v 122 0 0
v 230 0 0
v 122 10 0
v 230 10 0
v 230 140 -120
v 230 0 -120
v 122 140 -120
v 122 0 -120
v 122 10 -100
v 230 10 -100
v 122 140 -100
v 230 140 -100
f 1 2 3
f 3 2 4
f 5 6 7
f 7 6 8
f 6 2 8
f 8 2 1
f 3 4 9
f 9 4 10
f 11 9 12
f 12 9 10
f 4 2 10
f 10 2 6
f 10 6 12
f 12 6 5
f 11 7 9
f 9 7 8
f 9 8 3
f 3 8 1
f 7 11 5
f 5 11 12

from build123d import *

# Parameters (mm, degrees)
SKETCH1_W                      = 670
SKETCH1_H                      = 120
BOSS_EXTRUDE1_DEPTH            = 530
SKETCH2_W                      = 100
SKETCH2_H                      = 200
SKETCH2_W_2                    = 650
SKETCH2_H_2                    = 250
CUT_EXTRUDE1_DEPTH             = 100
SKETCH3_R                      = 50
CUT_EXTRUDE2_DEPTH             = 260
F_12_0_12_DIAMETER_HOLE2_D     = 12
F_12_0_12_DIAMETER_HOLE2_DEPTH = 30
F_12_0_12_DIAMETER_HOLE2_TIP   = 3.605163714
SKETCH8_W                      = 650
SKETCH8_H                      = 50
BOSS_EXTRUDE2_DEPTH            = 5
SKETCH9_W                      = 10
SKETCH9_H                      = 250
CUT_EXTRUDE3_DEPTH             = 717
CUT_EXTRUDE4_DEPTH             = 5
SKETCH11_W                     = 10
SKETCH11_H                     = 100
BOSS_EXTRUDE3_DEPTH            = 78
BOSS_EXTRUDE3_2_DEPTH          = 78
BOSS_EXTRUDE3_3_DEPTH          = 78
SKETCH12_W                     = 20
SKETCH12_H                     = 30
CUT_EXTRUDE5_DEPTH             = 80
SKETCH15_W                     = 30
SKETCH15_H                     = 23.536156656
SKETCH15_H_2                   = 28.986603691
CUT_EXTRUDE7_DEPTH             = 35
SHELL1_T                       = -3
SKETCH16_W                     = 14
SKETCH16_H                     = 14
CUT_EXTRUDE8_DEPTH             = 35
SKETCH17_W                     = 5.729882812
SKETCH17_H                     = 17.428393554
SKETCH17_W_2                   = 13.369726562
SKETCH17_H_2                   = 3.342431641
BOSS_EXTRUDE4_DEPTH            = 5
CUT_EXTRUDE10_DEPTH            = 863.670273187
CUT_EXTRUDE10_DEPTH_BACK       = 863.670273187
SKETCH18_W                     = 670
SKETCH18_H                     = 250
CUT_EXTRUDE12_DEPTH            = 734.007503372
CUT_EXTRUDE12_DEPTH_BACK       = 734.007503372
SKETCH19_W                     = 440
SKETCH19_H                     = 280
SKETCH20_W                     = 210.918945895
SKETCH20_H                     = 296.400973443
CUT_EXTRUDE14_DEPTH            = 156
CUT_EXTRUDE15_DEPTH            = 376.898922584
CUT_EXTRUDE15_DEPTH_BACK       = 376.898922584
SKETCH21_W                     = 108
SKETCH21_H                     = 140


with BuildPart() as part:
    # Sketch1 → Boss-Extrude1 (new body)
    with BuildSketch(Plane(origin=(0, 0, 0), x_dir=(1, 0, 0), z_dir=(0, 1, 0))):
        with Locations((335, 60)):
            Rectangle(SKETCH1_W, SKETCH1_H)
    extrude(amount=BOSS_EXTRUDE1_DEPTH)

    # Sketch2 → Cut-Extrude1 (cut)
    with BuildSketch(Plane.XY):
        with Locations((60, 380)):
            Rectangle(SKETCH2_W, SKETCH2_H)
        with Locations((170, 380)):
            Rectangle(SKETCH2_W, SKETCH2_H)
        with Locations((280, 380)):
            Rectangle(SKETCH2_W, SKETCH2_H)
        with Locations((390, 380)):
            Rectangle(SKETCH2_W, SKETCH2_H)
        with Locations((500, 380)):
            Rectangle(SKETCH2_W, SKETCH2_H)
        with Locations((610, 380)):
            Rectangle(SKETCH2_W, SKETCH2_H)
        with Locations((335, 135)):
            Rectangle(SKETCH2_W_2, SKETCH2_H_2)
    extrude(amount=-CUT_EXTRUDE1_DEPTH, mode=Mode.SUBTRACT)

    # Sketch3 → Cut-Extrude2 (cut)
    with BuildSketch(Plane(origin=(0, 530, 0), x_dir=(1, 0, 0), z_dir=(0, 1, 0))):
        with Locations(Location((60, 60, 0), (0, 0, 270))):
            Circle(SKETCH3_R)
        with Locations(Location((170, 60, 0), (0, 0, 270))):
            Circle(SKETCH3_R)
        with Locations(Location((280, 60, 0), (0, 0, 270))):
            Circle(SKETCH3_R)
        with Locations(Location((390, 60, 0), (0, 0, 270))):
            Circle(SKETCH3_R)
        with Locations(Location((500, 60, 0), (0, 0, 270))):
            Circle(SKETCH3_R)
        with Locations(Location((610, 60, 0), (0, 0, 270))):
            Circle(SKETCH3_R)
    extrude(amount=-CUT_EXTRUDE2_DEPTH, mode=Mode.SUBTRACT)

    # Ø12.0 (12) Diameter Hole2
    with Locations(Plane(origin=(59.704642413, 270, -102.411697903), x_dir=(0, 0, 1), z_dir=(0, 1, 0))):
        with Locations((0, 0), (-0.195888006, 111.8520513), (0.014838595, 221.167624818), (-0.341843303, 331.364008353), (0.657723149, 441.008646429), (1.288998006, 549.811854685)):
            Hole(F_12_0_12_DIAMETER_HOLE2_D / 2, depth=F_12_0_12_DIAMETER_HOLE2_DEPTH)
            with Locations((0, 0, -(F_12_0_12_DIAMETER_HOLE2_DEPTH + F_12_0_12_DIAMETER_HOLE2_TIP / 2))):  # 118° drill point
                Cone(0, F_12_0_12_DIAMETER_HOLE2_D / 2, F_12_0_12_DIAMETER_HOLE2_TIP, mode=Mode.SUBTRACT)

    # Sketch8 → Boss-Extrude2 (add)
    with BuildSketch(Plane.XY):
        with Locations((335, 305)):
            Rectangle(SKETCH8_W, SKETCH8_H)
    extrude(amount=-BOSS_EXTRUDE2_DEPTH)

    # Sketch9 → Cut-Extrude3 (cut)
    with BuildSketch(Plane(origin=(670, 0, 0), x_dir=(0, 0, -1), z_dir=(1, 0, 0))):
        with Locations((15, 135)):
            Rectangle(SKETCH9_W, SKETCH9_H)
    extrude(amount=-CUT_EXTRUDE3_DEPTH, mode=Mode.SUBTRACT)

    # Sketch10 → Cut-Extrude4 (cut)
    with BuildSketch(Plane(origin=(0, 10, 0), x_dir=(1, 0, 0), z_dir=(0, 1, 0))):
        Polygon((365, 61.943560596), (350, 87.924322709), (320, 87.924322709), (305, 61.943560596), (320, 35.962798482), (350, 35.962798482), align=None)
    extrude(amount=-CUT_EXTRUDE4_DEPTH, mode=Mode.SUBTRACT)

    # Sketch12 → Cut-Extrude5 (cut)
    with BuildSketch(Plane.XY.offset(-100)):
        with Locations((85.198613037, 245)):
            Rectangle(SKETCH12_W, SKETCH12_H)
        with Locations((195.198613037, 245)):
            Rectangle(SKETCH12_W, SKETCH12_H)
        with Locations((305.198613037, 245)):
            Rectangle(SKETCH12_W, SKETCH12_H)
        with Locations((415.198613037, 245)):
            Rectangle(SKETCH12_W, SKETCH12_H)
        with Locations((525.198613037, 245)):
            Rectangle(SKETCH12_W, SKETCH12_H)
        with Locations((635.198613037, 245)):
            Rectangle(SKETCH12_W, SKETCH12_H)
    extrude(amount=-CUT_EXTRUDE5_DEPTH, mode=Mode.SUBTRACT)

    # Sketch17 → Boss-Extrude4 (add)
    # profile 1 of 9: a face of its own
    with BuildSketch(Plane.XY):
        with BuildLine():
            Line((527.508830928, 289.835452458), (527.508830928, 307.263846012))
            Line((527.508830928, 307.263846012), (534.861434459, 307.263846012))
            add(Edge.make_bspline(
                [(534.861434459, 307.263846012), (535.181337774, 307.258256848), (535.803061116, 307.24739446), (536.703508491, 307.139069344), (537.544992916, 306.975202489), (538.325061607, 306.737496792), (539.040841948, 306.426020155), (539.698044515, 306.051894954), (540.290333057, 305.605079277), (540.822348212, 305.090232636), (541.284521701, 304.502523111), (541.692171296, 303.852565801), (542.030284458, 303.129762281), (542.309377095, 302.341316546), (542.5243908, 301.484161689), (542.679660381, 300.560045938), (542.773357357, 299.567500804), (542.783368073, 298.883107022), (542.788518428, 298.530997273)],
                knots=[0, 0, 0, 0, 1.135059408, 2.20595691, 3.214417064, 4.174978569, 5.094187092, 5.980001006, 6.853065862, 7.720814779, 8.600404634, 9.50058483, 10.438414914, 11.426825708, 12.465239141, 13.571113463, 14.750376389, 16, 16, 16, 16], degree=3))
            add(Edge.make_bspline(
                [(542.788518428, 298.530997273), (542.781740751, 298.180151665), (542.768592871, 297.499553336), (542.676885992, 296.511518461), (542.516733301, 295.591080531), (542.296748778, 294.736450427), (542.003051046, 293.953120444), (541.654236167, 293.233205539), (541.233025793, 292.585291498), (540.753136904, 292.000029304), (540.204772188, 291.484681411), (539.587651059, 291.044279297), (538.910779309, 290.668464036), (538.169670382, 290.361903209), (537.364073889, 290.124869172), (536.495133477, 289.954199984), (535.562644449, 289.853487388), (534.920131033, 289.841584621), (534.58911581, 289.835452458)],
                knots=[0, 0, 0, 0, 1.228418252, 2.382983832, 3.470276728, 4.496757894, 5.468023682, 6.394867725, 7.292157164, 8.167372942, 9.039072913, 9.918728341, 10.815246345, 11.744296628, 12.720973084, 13.750736166, 14.841206188, 16, 16, 16, 16], degree=3))
            Line((534.58911581, 289.835452458), (527.508830928, 289.835452458))
        make_face()
        with BuildLine():
            Line((533.238713741, 291.745413395), (534.048208904, 291.745413395))
            add(Edge.make_bspline(
                [(534.048208904, 291.745413395), (534.172894012, 291.749291978), (534.413033311, 291.756761998), (534.758676231, 291.825976613), (535.075745017, 291.938271137), (535.365749176, 292.094802589), (535.623404602, 292.300450923), (535.848862806, 292.551404902), (536.04776914, 292.844737637), (536.217685755, 293.190205032), (536.364284647, 293.596533622), (536.481764702, 294.076367921), (536.592118304, 294.630928744), (536.673672739, 295.265507643), (536.740044562, 295.978448886), (536.788346679, 296.768428292), (536.812018936, 297.636801208), (536.817188964, 298.241258393), (536.819890499, 298.55711002)],
                knots=[0, 0, 0, 0, 0.728710832, 1.403472396, 2.052289494, 2.690292559, 3.321919393, 3.970736491, 4.656696891, 5.388631723, 6.217040872, 7.17856157, 8.275589967, 9.523440737, 10.918935818, 12.463926104, 14.152268318, 16, 16, 16, 16], degree=3))
            add(Edge.make_bspline(
                [(536.819890499, 298.55711002), (536.8171426, 298.871715251), (536.811863063, 299.476166083), (536.7886758, 300.343334385), (536.739579947, 301.133216935), (536.674703848, 301.843934916), (536.589660404, 302.476324031), (536.488366458, 303.031681737), (536.362441588, 303.507627045), (536.222158727, 303.914921549), (536.050140993, 304.256514038), (535.858357073, 304.554097881), (535.62547107, 304.79746827), (535.36991257, 305.004888479), (535.079348843, 305.160875844), (534.761320266, 305.273944358), (534.414185903, 305.34216807), (534.172870641, 305.349893944), (534.048208904, 305.353885075)],
                knots=[0, 0, 0, 0, 1.842836665, 3.540640921, 5.080358154, 6.47765669, 7.719902824, 8.816971715, 9.781579111, 10.601733135, 11.334613876, 12.017393917, 12.666641099, 13.29908421, 13.937911793, 14.587567384, 15.270347425, 16, 16, 16, 16], degree=3))
            Line((534.048208904, 305.353885075), (533.238713741, 305.353885075))
            Line((533.238713741, 305.353885075), (533.238713741, 291.745413395))
        make_face(mode=Mode.SUBTRACT)
    # profile 2 of 9: a face of its own
    with BuildSketch(Plane.XY):
        with Locations((547.563420772, 298.549649235)):
            Rectangle(SKETCH17_W, SKETCH17_H)
    # profile 3 of 9: a face of its own
    with BuildSketch(Plane.XY):
        Polygon((564.514324092, 307.263846012), (564.514324092, 305.115139958), (558.545696163, 305.115139958), (558.545696163, 299.862747379), (563.559343624, 299.862747379), (563.559343624, 297.714041325), (558.545696163, 297.714041325), (558.545696163, 289.835452458), (552.81581335, 289.835452458), (552.81581335, 307.263846012), align=None)
    # profile 4 of 9: a face of its own
    with BuildSketch(Plane.XY):
        Polygon((577.645305538, 307.263846012), (577.645305538, 305.115139958), (571.676677608, 305.115139958), (571.676677608, 299.862747379), (576.690325069, 299.862747379), (576.690325069, 297.714041325), (571.676677608, 297.714041325), (571.676677608, 289.835452458), (565.946794795, 289.835452458), (565.946794795, 307.263846012), align=None)
    # profile 5 of 9: a face of its own
    with BuildSketch(Plane.XY):
        with Locations((584.330168819, 287.448001286)):
            Rectangle(SKETCH17_W_2, SKETCH17_H_2)
    # profile 6 of 9: a face of its own
    with BuildSketch(Plane.XY):
        with BuildLine():
            Line((605.578484249, 307.263846012), (605.578484249, 295.602639195))
            add(Edge.make_bspline(
                [(605.578484249, 295.602639195), (605.574209777, 295.35989389), (605.565919345, 294.889083964), (605.480877158, 294.20653885), (605.349958188, 293.569747554), (605.15926554, 292.978838165), (604.911867049, 292.436847071), (604.616163877, 291.936663973), (604.260702644, 291.487723021), (603.847299908, 291.08966617), (603.386881991, 290.731670113), (602.867295001, 290.425440037), (602.293741958, 290.168488385), (601.66690529, 289.960990771), (600.988052682, 289.797299786), (600.254912883, 289.679078851), (599.467035781, 289.60781007), (598.923618241, 289.60048219), (598.643684673, 289.59670734)],
                knots=[0, 0, 0, 0, 1.108173197, 2.149326602, 3.136215123, 4.073726706, 4.978516626, 5.852185058, 6.72141202, 7.584905625, 8.467554395, 9.379216169, 10.332422268, 11.332766067, 12.390653242, 13.518530507, 14.721707419, 16, 16, 16, 16], degree=3))
            add(Edge.make_bspline(
                [(598.643684673, 289.59670734), (598.373688491, 289.600411437), (597.851346557, 289.607577482), (597.093280473, 289.679448684), (596.387523889, 289.797736542), (595.733050135, 289.960122315), (595.130189942, 290.169220301), (594.579048171, 290.42623041), (594.078350789, 290.732835498), (593.633858028, 291.090104794), (593.234289459, 291.486851767), (592.899913678, 291.940746827), (592.609043638, 292.435866034), (592.375223767, 292.980322997), (592.191754821, 293.570441519), (592.063541006, 294.20666921), (591.983676196, 294.889343196), (591.974661767, 295.359932437), (591.970012569, 295.602639195)],
                knots=[0, 0, 0, 0, 1.258901956, 2.435505865, 3.547148904, 4.59359074, 5.576649289, 6.5183682, 7.424469602, 8.307507093, 9.172751023, 10.042627298, 10.928839176, 11.845659241, 12.799442865, 13.80597989, 14.868432463, 16, 16, 16, 16], degree=3))
            Line((591.970012569, 295.602639195), (591.970012569, 307.263846012))
            Line((591.970012569, 307.263846012), (597.699895381, 307.263846012))
            Line((597.699895381, 307.263846012), (597.699895381, 295.457153889))
            add(Edge.make_bspline(
                [(597.699895381, 295.457153889), (597.700816195, 295.287996189), (597.702584578, 294.963135903), (597.729908723, 294.499051493), (597.768241004, 294.079064133), (597.828226169, 293.705517832), (597.90066041, 293.377063412), (597.989882091, 293.09281535), (598.094998068, 292.852496478), (598.225239063, 292.654232043), (598.380826623, 292.495135011), (598.55368342, 292.353231761), (598.757556996, 292.238543846), (598.987648905, 292.146224908), (599.243380948, 292.070549638), (599.526120553, 292.020376099), (599.83553351, 291.990763905), (600.049971942, 291.986424568), (600.161954402, 291.984158512)],
                knots=[0, 0, 0, 0, 1.622370975, 3.115695595, 4.458049099, 5.666011203, 6.742434742, 7.681714947, 8.519814998, 9.250928664, 9.942747364, 10.646898194, 11.389596108, 12.175933929, 13.021386247, 13.943159715, 14.925891993, 16, 16, 16, 16], degree=3))
            add(Edge.make_bspline(
                [(600.161954402, 291.984158512), (600.283927219, 291.987190593), (600.521124756, 291.993087005), (600.86597014, 292.03390861), (601.187714881, 292.103380086), (601.484890424, 292.205377303), (601.758665297, 292.332852529), (602.012761516, 292.484567923), (602.236391413, 292.674631152), (602.439076761, 292.888441291), (602.620738276, 293.128529789), (602.771757722, 293.399928575), (602.905501548, 293.697121508), (603.005823683, 294.025060118), (603.089837826, 294.379999499), (603.146989706, 294.763086929), (603.186210275, 295.174074524), (603.189394751, 295.457053988), (603.191033077, 295.602639195)],
                knots=[0, 0, 0, 0, 1.083870311, 2.107775948, 3.08105344, 4.003637981, 4.893545291, 5.761570557, 6.624657808, 7.49233129, 8.376387281, 9.291996285, 10.246843261, 11.267344133, 12.334180325, 13.486053461, 14.706643157, 16, 16, 16, 16], degree=3))
            Line((603.191033077, 295.602639195), (603.191033077, 307.263846012))
            Line((603.191033077, 307.263846012), (605.578484249, 307.263846012))
        make_face()
    # profile 7 of 9: a face of its own
    with BuildSketch(Plane.XY):
        with BuildLine():
            Line((619.731593227, 302.015183827), (616.739818477, 301.526502415))
            add(Edge.make_bspline(
                [(616.739818477, 301.526502415), (616.748849224, 301.670726223), (616.765660669, 301.939210177), (616.78429066, 302.312269209), (616.796668381, 302.625642376), (616.798628236, 302.814722915), (616.799504756, 302.899286839)],
                knots=[0, 0, 0, 0, 1.261802504, 2.348944521, 3.261585937, 4, 4, 4, 4], degree=3))
            add(Edge.make_bspline(
                [(616.799504756, 302.899286839), (616.798306068, 303.007660677), (616.795968139, 303.219033721), (616.750451916, 303.523894877), (616.694806916, 303.811547356), (616.604352699, 304.076787391), (616.488181329, 304.320314265), (616.348943917, 304.543955606), (616.184187178, 304.745078709), (615.995833421, 304.928129987), (615.778009957, 305.083200131), (615.536269472, 305.218702836), (615.269765326, 305.333844758), (614.978065514, 305.431346685), (614.660683072, 305.504624438), (614.319025281, 305.556776695), (613.952471696, 305.585673441), (613.699597795, 305.590260771), (613.568984889, 305.592630192)],
                knots=[0, 0, 0, 0, 1.079280541, 2.105035848, 3.067950317, 3.99715044, 4.889989748, 5.753421302, 6.617030865, 7.476358039, 8.364190572, 9.274590025, 10.235106994, 11.254473582, 12.337095886, 13.478601727, 14.697662529, 16, 16, 16, 16], degree=3))
            add(Edge.make_bspline(
                [(613.568984889, 305.592630192), (613.391954632, 305.58912286), (613.059112606, 305.582528579), (612.595688488, 305.495339748), (612.198743126, 305.361419257), (611.87165349, 305.163811893), (611.613188167, 304.909795747), (611.433841092, 304.593316589), (611.323009072, 304.224665915), (611.313400221, 303.959558324), (611.308367061, 303.820693775)],
                knots=[0, 0, 0, 0, 1.294917039, 2.43462794, 3.440028966, 4.347597256, 5.210608309, 6.06356377, 6.985685997, 8, 8, 8, 8], degree=3))
            add(Edge.make_bspline(
                [(611.308367061, 303.820693775), (611.317562032, 303.705133219), (611.336106628, 303.472068433), (611.47315858, 303.132808312), (611.695999602, 302.811560885), (612.009295906, 302.510664216), (612.404107796, 302.221967273), (612.884407504, 301.948533431), (613.450813789, 301.688189695), (613.862519081, 301.536023727), (614.080048656, 301.455624958)],
                knots=[0, 0, 0, 0, 0.716839541, 1.445735977, 2.240793036, 3.131329288, 4.131129903, 5.273471266, 6.559404876, 8, 8, 8, 8], degree=3))
            add(Edge.make_bspline(
                [(614.080048656, 301.455624958), (614.335934702, 301.364918412), (614.834564244, 301.188164095), (615.547657928, 300.88707802), (616.213068388, 300.5749594), (616.829579094, 300.246613346), (617.397833174, 299.90520698), (617.914851624, 299.544556457), (618.386199073, 299.173962102), (618.807001026, 298.783874588), (619.177995113, 298.378100064), (619.4958685, 297.952745357), (619.771807525, 297.51723103), (619.991113975, 297.061458502), (620.169645242, 296.594624218), (620.292698657, 296.11024444), (620.364288243, 295.609761088), (620.37516617, 295.270864226), (620.380681514, 295.099036213)],
                knots=[0, 0, 0, 0, 1.359488612, 2.649152603, 3.874964776, 5.039588756, 6.146130126, 7.193090393, 8.194917302, 9.146793662, 10.063845301, 10.944476293, 11.803344532, 12.641736646, 13.473440096, 14.302714936, 15.139439897, 16, 16, 16, 16], degree=3))
            add(Edge.make_bspline(
                [(620.380681514, 295.099036213), (620.374476075, 294.902306495), (620.362285176, 294.515820995), (620.280160209, 293.948630617), (620.138011896, 293.409496554), (619.938489338, 292.895972278), (619.681049879, 292.411946655), (619.366518754, 291.954381076), (618.996510229, 291.525099427), (618.5710008, 291.128381035), (618.102222518, 290.765302239), (617.587803957, 290.450854345), (617.034458515, 290.187092261), (616.444107988, 289.968993032), (615.81453624, 289.801373099), (615.145337453, 289.685291013), (614.438790193, 289.606619894), (613.954683001, 289.600062276), (613.70700941, 289.59670734)],
                knots=[0, 0, 0, 0, 0.972121714, 1.909782367, 2.824924061, 3.721832975, 4.62620438, 5.527836938, 6.46026819, 7.421000932, 8.398101015, 9.385579713, 10.394244048, 11.422703992, 12.491421888, 13.608778581, 14.776629625, 16, 16, 16, 16], degree=3))
            add(Edge.make_bspline(
                [(613.70700941, 289.59670734), (613.445745367, 289.599650312), (612.939893069, 289.605348413), (612.207608113, 289.66709241), (611.525297432, 289.760984454), (610.893395078, 289.899706116), (610.309273131, 290.072394336), (609.776099392, 290.288320955), (609.295310255, 290.547303481), (608.863217672, 290.843007892), (608.478306623, 291.175775461), (608.148120946, 291.551766865), (607.86942369, 291.967163224), (607.639947144, 292.421521488), (607.466477665, 292.917583541), (607.339164663, 293.449829748), (607.264537999, 294.021332449), (607.254747521, 294.414908557), (607.249700069, 294.617815586)],
                knots=[0, 0, 0, 0, 1.342201143, 2.598733168, 3.773451092, 4.878874364, 5.91991243, 6.900006476, 7.829142054, 8.72062616, 9.585588575, 10.436728592, 11.283829734, 12.149664931, 13.044964919, 13.977937424, 14.957531465, 16, 16, 16, 16], degree=3))
            add(Edge.make_bspline(
                [(607.249700069, 294.617815586), (607.250803815, 294.692425759), (607.253213998, 294.855347393), (607.260452266, 295.122772538), (607.275636683, 295.433682216), (607.29037174, 295.656130545), (607.298195171, 295.774237248)],
                knots=[0, 0, 0, 0, 0.773500207, 1.689044709, 2.77302154, 4, 4, 4, 4], degree=3))
            Line((607.298195171, 295.774237248), (610.36457777, 296.337526509))
            add(Edge.make_bspline(
                [(610.36457777, 296.337526509), (610.326952988, 296.136337493), (610.255606535, 295.754830366), (610.178678473, 295.21219969), (610.124206629, 294.733311493), (610.11767002, 294.435147371), (610.114641475, 294.297001835)],
                knots=[0, 0, 0, 0, 1.192988372, 2.262218769, 3.194850416, 4, 4, 4, 4], degree=3))
            add(Edge.make_bspline(
                [(610.114641475, 294.297001835), (610.116191817, 294.183708768), (610.119182568, 293.965156219), (610.159053378, 293.648552813), (610.215988606, 293.352999663), (610.302906772, 293.079707227), (610.411206928, 292.826307836), (610.544682453, 292.59538211), (610.704385489, 292.386485019), (610.887496571, 292.200099922), (611.094689168, 292.033628705), (611.327456494, 291.892756696), (611.58347653, 291.771733922), (611.864681562, 291.677479524), (612.167961721, 291.596080628), (612.497219749, 291.548235723), (612.849461228, 291.512043782), (613.092629543, 291.508500084), (613.218327999, 291.506668278)],
                knots=[0, 0, 0, 0, 1.135776692, 2.191015738, 3.19649269, 4.151244236, 5.061952528, 5.956281389, 6.819534407, 7.692823504, 8.571441916, 9.478554956, 10.416037156, 11.406231466, 12.450054172, 13.561596327, 14.739541482, 16, 16, 16, 16], degree=3))
            add(Edge.make_bspline(
                [(613.218327999, 291.506668278), (613.423996012, 291.510791273), (613.810619321, 291.518541853), (614.349272542, 291.616708407), (614.810575885, 291.768742445), (615.189785268, 291.991387532), (615.490778961, 292.278756613), (615.698005174, 292.637320004), (615.824813318, 293.05638326), (615.837728413, 293.355975238), (615.844524288, 293.513619419)],
                knots=[0, 0, 0, 0, 1.308765556, 2.460272085, 3.475015317, 4.388076298, 5.239673503, 6.095681635, 6.997954785, 8, 8, 8, 8], degree=3))
            add(Edge.make_bspline(
                [(615.844524288, 293.513619419), (615.833808824, 293.638242951), (615.811807312, 293.894126055), (615.644884004, 294.264515838), (615.382382362, 294.620631473), (615.016807277, 294.962984909), (614.551376589, 295.293471235), (613.986957743, 295.616730224), (613.322148235, 295.933112033), (612.83677959, 296.119639164), (612.580430889, 296.21815395)],
                knots=[0, 0, 0, 0, 0.667930748, 1.371427933, 2.146459016, 3.034714139, 4.04893387, 5.207327294, 6.525042705, 8, 8, 8, 8], degree=3))
            add(Edge.make_bspline(
                [(612.580430889, 296.21815395), (612.374354345, 296.29679374), (611.970646869, 296.450850434), (611.394079385, 296.713586304), (610.853066711, 296.987016804), (610.357486361, 297.288235735), (609.896382561, 297.599610528), (609.477036946, 297.932256792), (609.09841673, 298.284556341), (608.758710772, 298.653375077), (608.457302107, 299.038989264), (608.199448649, 299.444659231), (607.977533299, 299.866789834), (607.798609588, 300.308107488), (607.65975715, 300.767821241), (607.559616231, 301.244439392), (607.497905054, 301.739995674), (607.491630423, 302.075933546), (607.488445186, 302.246468159)],
                knots=[0, 0, 0, 0, 1.249558333, 2.447906163, 3.58867143, 4.682264114, 5.731748367, 6.739728761, 7.711906036, 8.659384707, 9.578321416, 10.481344598, 11.379544271, 12.277135726, 13.175418307, 14.097160112, 15.034047388, 16, 16, 16, 16], degree=3))
            add(Edge.make_bspline(
                [(607.488445186, 302.246468159), (607.49282555, 302.439538736), (607.501402184, 302.817565692), (607.587451154, 303.36980586), (607.719291893, 303.894921371), (607.910558542, 304.389343064), (608.156192894, 304.852853762), (608.453187669, 305.288766511), (608.804241719, 305.697593471), (609.213503754, 306.066686531), (609.657214714, 306.407618241), (610.14376173, 306.697651931), (610.658716537, 306.950861947), (611.210636666, 307.148827868), (611.791820619, 307.313252612), (612.408080529, 307.421140415), (613.056315391, 307.490701612), (613.499160755, 307.498567824), (613.725661373, 307.502591129)],
                knots=[0, 0, 0, 0, 1.01033566, 1.978209831, 2.919499157, 3.840961976, 4.746855014, 5.660740114, 6.597989116, 7.56120833, 8.541877795, 9.523498025, 10.522416858, 11.542172371, 12.589598349, 13.681636521, 14.814234488, 16, 16, 16, 16], degree=3))
            add(Edge.make_bspline(
                [(613.725661373, 307.502591129), (613.968269855, 307.498219033), (614.438190994, 307.489750488), (615.120391152, 307.426787419), (615.755073228, 307.319142339), (616.345153155, 307.171557286), (616.887304575, 306.977590666), (617.384933999, 306.742393454), (617.834452216, 306.46201507), (618.236961315, 306.139451502), (618.593086714, 305.773322851), (618.897467704, 305.361641069), (619.158701245, 304.909408454), (619.366684143, 304.412232174), (619.529870326, 303.873247147), (619.649133834, 303.29158184), (619.720420497, 302.667301443), (619.72779778, 302.236712324), (619.731593227, 302.015183827)],
                knots=[0, 0, 0, 0, 1.248314423, 2.417925914, 3.521398822, 4.558068205, 5.543720209, 6.479599284, 7.385061127, 8.263440163, 9.127722873, 10.00561236, 10.891325273, 11.808802823, 12.772251995, 13.784947978, 14.860405143, 16, 16, 16, 16], degree=3))
        make_face()
    # profile 8 of 9: a face of its own
    with BuildSketch(Plane.XY):
        Polygon((633.989153194, 307.263846012), (633.989153194, 305.115139958), (628.020525264, 305.115139958), (628.020525264, 300.340237614), (633.034172725, 300.340237614), (633.034172725, 298.191531559), (628.020525264, 298.191531559), (628.020525264, 291.984158512), (634.944133663, 291.984158512), (634.944133663, 289.835452458), (622.290642452, 289.835452458), (622.290642452, 307.263846012), align=None)
    # profile 9 of 9: a face of its own
    with BuildSketch(Plane.XY):
        with BuildLine():
            Line((636.376604366, 289.835452458), (636.376604366, 307.263846012))
            Line((636.376604366, 307.263846012), (643.990335369, 307.263846012))
            add(Edge.make_bspline(
                [(643.990335369, 307.263846012), (644.237946498, 307.261150834), (644.721600887, 307.25588639), (645.426490561, 307.189203683), (646.094808274, 307.090496236), (646.724915796, 306.949857504), (647.317873659, 306.767252686), (647.871119087, 306.542146), (648.390701058, 306.282329135), (648.864494846, 305.976472528), (649.295093616, 305.642889252), (649.669668547, 305.279483604), (649.990389523, 304.894749072), (650.250664962, 304.483256345), (650.454275633, 304.048690948), (650.59581384, 303.587791605), (650.684089268, 303.104102537), (650.695510601, 302.772834174), (650.701311397, 302.604585835)],
                knots=[0, 0, 0, 0, 1.303269877, 2.545653735, 3.724355284, 4.8584284, 5.941462088, 6.987020715, 8.000098032, 8.995332524, 9.951400474, 10.863507538, 11.737823931, 12.582415999, 13.420128714, 14.25671499, 15.114600608, 16, 16, 16, 16], degree=3))
            add(Edge.make_bspline(
                [(650.701311397, 302.604585835), (650.698282873, 302.472674957), (650.692382063, 302.215658276), (650.651041486, 301.838684287), (650.580643818, 301.480313933), (650.481036683, 301.139915259), (650.347814833, 300.820175594), (650.191279492, 300.517863507), (650.009772227, 300.230553342), (649.788675198, 299.970497982), (649.548268341, 299.722842359), (649.274558803, 299.497116911), (648.974487035, 299.288655528), (648.642526299, 299.104010513), (648.287619671, 298.928055749), (647.899038177, 298.784921972), (647.486819978, 298.644749395), (647.19793098, 298.577036306), (647.049257183, 298.54218845)],
                knots=[0, 0, 0, 0, 1.057156483, 2.059775939, 3.035078039, 3.981068617, 4.897189472, 5.80650904, 6.70770952, 7.613691521, 8.536886357, 9.470937334, 10.45233069, 11.461024139, 12.51295332, 13.623444893, 14.776929983, 16, 16, 16, 16], degree=3))
            add(Edge.make_bspline(
                [(647.049257183, 298.54218845), (647.19164695, 298.499279419), (647.467865022, 298.416041346), (647.856360945, 298.265600017), (648.211652989, 298.111536308), (648.524185739, 297.936781388), (648.807636894, 297.762122504), (649.047122259, 297.564301324), (649.255235567, 297.361673563), (649.425188343, 297.135464734), (649.570253643, 296.882344437), (649.694827156, 296.586596707), (649.815179167, 296.247423665), (649.917667348, 295.859098311), (650.004750555, 295.423699276), (650.088222437, 294.944027189), (650.153853601, 294.416024546), (650.187587341, 294.048412906), (650.2051692, 293.856815525)],
                knots=[0, 0, 0, 0, 1.149282524, 2.229462177, 3.219229774, 4.139917433, 4.995948464, 5.788695735, 6.536448429, 7.236319808, 7.968460079, 8.78645307, 9.713791991, 10.749194692, 11.887975363, 13.146018663, 14.512518948, 16, 16, 16, 16], degree=3))
            add(Edge.make_bspline(
                [(650.2051692, 293.856815525), (650.225980287, 293.627849833), (650.265975604, 293.187817268), (650.348933081, 292.554613589), (650.44386163, 291.974357025), (650.555874504, 291.44528724), (650.681301216, 290.967898855), (650.821280597, 290.540469593), (650.979920039, 290.165788217), (651.10484481, 289.941461656), (651.163880062, 289.835452458)],
                knots=[0, 0, 0, 0, 1.324580516, 2.545615266, 3.678710841, 4.711533017, 5.660403917, 6.521349952, 7.301239649, 8, 8, 8, 8], degree=3))
            Line((651.163880062, 289.835452458), (645.213904094, 289.835452458))
            add(Edge.make_bspline(
                [(645.213904094, 289.835452458), (645.12229736, 290.069847279), (644.935171241, 290.548648246), (644.7595281, 291.319414791), (644.64846922, 292.142514735), (644.635117598, 292.70994511), (644.628232479, 293.002555653)],
                knots=[0, 0, 0, 0, 0.930410518, 1.900560147, 2.917368081, 4, 4, 4, 4], degree=3))
            Line((644.628232479, 293.002555653), (644.605850124, 294.002300831))
            Line((644.605850124, 294.002300831), (644.579737377, 295.266903874))
            add(Edge.make_bspline(
                [(644.579737377, 295.266903874), (644.573694669, 295.477395004), (644.562357007, 295.872330118), (644.469348432, 296.426164013), (644.30178735, 296.894645884), (644.073222546, 297.287223005), (643.766741442, 297.590613479), (643.39104803, 297.804152917), (642.950456912, 297.93396284), (642.634664848, 297.946292392), (642.468335247, 297.952786442)],
                knots=[0, 0, 0, 0, 1.295300309, 2.430314163, 3.439929415, 4.342995669, 5.203512789, 6.060756153, 6.978588463, 8, 8, 8, 8], degree=3))
            Line((642.468335247, 297.952786442), (642.106487178, 297.952786442))
            Line((642.106487178, 297.952786442), (642.106487178, 289.835452458))
            Line((642.106487178, 289.835452458), (636.376604366, 289.835452458))
        make_face()
        with BuildLine():
            Line((642.106487178, 299.862747379), (642.617550945, 299.862747379))
            add(Edge.make_bspline(
                [(642.617550945, 299.862747379), (642.722054451, 299.865172716), (642.925280724, 299.869889229), (643.220054897, 299.898289891), (643.494111408, 299.951809873), (643.749840966, 300.021017819), (643.984372137, 300.114851792), (644.200147241, 300.225818296), (644.391160406, 300.362685327), (644.565327067, 300.516342321), (644.718148635, 300.691986294), (644.850351299, 300.889034217), (644.961199162, 301.106225057), (645.056078491, 301.342818683), (645.125883912, 301.600830857), (645.173262731, 301.879472914), (645.203404658, 302.177423605), (645.207875435, 302.383174491), (645.210173702, 302.488943669)],
                knots=[0, 0, 0, 0, 1.184986479, 2.304423995, 3.352332712, 4.347714965, 5.303263624, 6.211353909, 7.091434645, 7.960150225, 8.839440182, 9.723126897, 10.64371617, 11.599264829, 12.608232147, 13.667459739, 14.800924404, 16, 16, 16, 16], degree=3))
            add(Edge.make_bspline(
                [(645.210173702, 302.488943669), (645.207875435, 302.594712847), (645.203404658, 302.800463732), (645.173262731, 303.098414423), (645.125883912, 303.37705648), (645.056078491, 303.635068654), (644.961199162, 303.87166228), (644.850351299, 304.08885312), (644.718148635, 304.285901043), (644.565327067, 304.461545017), (644.391160406, 304.61520201), (644.200147241, 304.752069041), (643.984372137, 304.863035546), (643.749840966, 304.956869518), (643.494111408, 305.026077464), (643.220054897, 305.079597446), (642.925280724, 305.107998108), (642.722054451, 305.112714621), (642.617550945, 305.115139958)],
                knots=[0, 0, 0, 0, 1.199075596, 2.332540261, 3.391767853, 4.400735171, 5.35628383, 6.276873103, 7.160559818, 8.039849775, 8.908565355, 9.788646091, 10.696736376, 11.652285035, 12.647667288, 13.695576005, 14.815013521, 16, 16, 16, 16], degree=3))
            Line((642.617550945, 305.115139958), (642.106487178, 305.115139958))
            Line((642.106487178, 305.115139958), (642.106487178, 299.862747379))
        make_face(mode=Mode.SUBTRACT)
    extrude(amount=BOSS_EXTRUDE4_DEPTH)

    # Sketch18 → Cut-Extrude10 (cut, two sides: drawn at the far end of the back side and taken through both)
    with BuildSketch(Plane.XY.offset(-CUT_EXTRUDE10_DEPTH_BACK)):
        with Locations((335, 405)):
            Rectangle(SKETCH18_W, SKETCH18_H)
    extrude(amount=CUT_EXTRUDE10_DEPTH + CUT_EXTRUDE10_DEPTH_BACK, mode=Mode.SUBTRACT)

    # Sketch19 → Cut-Extrude12 (cut, two sides: drawn at the far end of the back side and taken through both)
    with BuildSketch(Plane.XY.offset(-100).offset(-CUT_EXTRUDE12_DEPTH_BACK)):
        with Locations((450, 140)):
            Rectangle(SKETCH19_W, SKETCH19_H)
    extrude(amount=CUT_EXTRUDE12_DEPTH + CUT_EXTRUDE12_DEPTH_BACK, mode=Mode.SUBTRACT)

    # Sketch20 → Cut-Extrude14 (cut)
    with BuildSketch(Plane(origin=(0, 0, -120), x_dir=(-1, 0, 0), z_dir=(0, 0, -1))):
        with Locations((-16.540527053, 148.200486721)):
            Rectangle(SKETCH20_W, SKETCH20_H)
    extrude(amount=-CUT_EXTRUDE14_DEPTH, mode=Mode.SUBTRACT)

    # Sketch21 → Cut-Extrude15 (cut, two sides: drawn at the far end of the back side and taken through both)
    with BuildSketch(Plane.XY.offset(-100).offset(-CUT_EXTRUDE15_DEPTH_BACK)):
        with Locations((176, 210)):
            Rectangle(SKETCH21_W, SKETCH21_H)
    extrude(amount=CUT_EXTRUDE15_DEPTH + CUT_EXTRUDE15_DEPTH_BACK, mode=Mode.SUBTRACT)


with BuildPart() as body_2:
    # Sketch11 → Boss-Extrude3 (new body)
    with BuildSketch(Plane.XY.offset(-100)):
        with Locations((255, 60)):
            Rectangle(SKETCH11_W, SKETCH11_H)
    extrude(amount=BOSS_EXTRUDE3_DEPTH)


with BuildPart() as body_3:
    # Sketch11 → Boss-Extrude3 2 (new body)
    with BuildSketch(Plane.XY.offset(-100)):
        with Locations((415, 60)):
            Rectangle(SKETCH11_W, SKETCH11_H)
    extrude(amount=BOSS_EXTRUDE3_2_DEPTH)


with BuildPart() as body_4:
    # Sketch11 → Boss-Extrude3 3 (new body)
    with BuildSketch(Plane.XY.offset(-100)):
        Polygon((25, 198.45686471), (325, 145.558770497), (325, 122.01775856), (345, 122.01775856), (345, 145.558770497), (645, 198.45686471), align=None)
    extrude(amount=BOSS_EXTRUDE3_3_DEPTH)

    # Sketch15 → Cut-Extrude7 (cut)
    with BuildSketch(Plane(origin=(345, 0, 0), x_dir=(0, 0, -1), z_dir=(1, 0, 0))):
        with Locations((35, 133.231921672)):
            Rectangle(SKETCH15_W, SKETCH15_H)
        with Locations((85, 130.506698154)):
            Rectangle(SKETCH15_W, SKETCH15_H_2)
    extrude(amount=-CUT_EXTRUDE7_DEPTH, mode=Mode.SUBTRACT)

    # Shell1
    shell1_openings = [body_4.faces().sort_by_distance(p)[0] for p in [
        (335, 198.45686471, -61),
    ]]
    offset(amount=SHELL1_T, openings=shell1_openings, kind=Kind.INTERSECTION)

    # Sketch16 → Cut-Extrude8 (cut)
    with BuildSketch(Plane.XZ.offset(-122.01775856)):
        with Locations((335, -60)):
            Rectangle(SKETCH16_W, SKETCH16_H)
    extrude(amount=-CUT_EXTRUDE8_DEPTH, mode=Mode.SUBTRACT)


solid = part.part
